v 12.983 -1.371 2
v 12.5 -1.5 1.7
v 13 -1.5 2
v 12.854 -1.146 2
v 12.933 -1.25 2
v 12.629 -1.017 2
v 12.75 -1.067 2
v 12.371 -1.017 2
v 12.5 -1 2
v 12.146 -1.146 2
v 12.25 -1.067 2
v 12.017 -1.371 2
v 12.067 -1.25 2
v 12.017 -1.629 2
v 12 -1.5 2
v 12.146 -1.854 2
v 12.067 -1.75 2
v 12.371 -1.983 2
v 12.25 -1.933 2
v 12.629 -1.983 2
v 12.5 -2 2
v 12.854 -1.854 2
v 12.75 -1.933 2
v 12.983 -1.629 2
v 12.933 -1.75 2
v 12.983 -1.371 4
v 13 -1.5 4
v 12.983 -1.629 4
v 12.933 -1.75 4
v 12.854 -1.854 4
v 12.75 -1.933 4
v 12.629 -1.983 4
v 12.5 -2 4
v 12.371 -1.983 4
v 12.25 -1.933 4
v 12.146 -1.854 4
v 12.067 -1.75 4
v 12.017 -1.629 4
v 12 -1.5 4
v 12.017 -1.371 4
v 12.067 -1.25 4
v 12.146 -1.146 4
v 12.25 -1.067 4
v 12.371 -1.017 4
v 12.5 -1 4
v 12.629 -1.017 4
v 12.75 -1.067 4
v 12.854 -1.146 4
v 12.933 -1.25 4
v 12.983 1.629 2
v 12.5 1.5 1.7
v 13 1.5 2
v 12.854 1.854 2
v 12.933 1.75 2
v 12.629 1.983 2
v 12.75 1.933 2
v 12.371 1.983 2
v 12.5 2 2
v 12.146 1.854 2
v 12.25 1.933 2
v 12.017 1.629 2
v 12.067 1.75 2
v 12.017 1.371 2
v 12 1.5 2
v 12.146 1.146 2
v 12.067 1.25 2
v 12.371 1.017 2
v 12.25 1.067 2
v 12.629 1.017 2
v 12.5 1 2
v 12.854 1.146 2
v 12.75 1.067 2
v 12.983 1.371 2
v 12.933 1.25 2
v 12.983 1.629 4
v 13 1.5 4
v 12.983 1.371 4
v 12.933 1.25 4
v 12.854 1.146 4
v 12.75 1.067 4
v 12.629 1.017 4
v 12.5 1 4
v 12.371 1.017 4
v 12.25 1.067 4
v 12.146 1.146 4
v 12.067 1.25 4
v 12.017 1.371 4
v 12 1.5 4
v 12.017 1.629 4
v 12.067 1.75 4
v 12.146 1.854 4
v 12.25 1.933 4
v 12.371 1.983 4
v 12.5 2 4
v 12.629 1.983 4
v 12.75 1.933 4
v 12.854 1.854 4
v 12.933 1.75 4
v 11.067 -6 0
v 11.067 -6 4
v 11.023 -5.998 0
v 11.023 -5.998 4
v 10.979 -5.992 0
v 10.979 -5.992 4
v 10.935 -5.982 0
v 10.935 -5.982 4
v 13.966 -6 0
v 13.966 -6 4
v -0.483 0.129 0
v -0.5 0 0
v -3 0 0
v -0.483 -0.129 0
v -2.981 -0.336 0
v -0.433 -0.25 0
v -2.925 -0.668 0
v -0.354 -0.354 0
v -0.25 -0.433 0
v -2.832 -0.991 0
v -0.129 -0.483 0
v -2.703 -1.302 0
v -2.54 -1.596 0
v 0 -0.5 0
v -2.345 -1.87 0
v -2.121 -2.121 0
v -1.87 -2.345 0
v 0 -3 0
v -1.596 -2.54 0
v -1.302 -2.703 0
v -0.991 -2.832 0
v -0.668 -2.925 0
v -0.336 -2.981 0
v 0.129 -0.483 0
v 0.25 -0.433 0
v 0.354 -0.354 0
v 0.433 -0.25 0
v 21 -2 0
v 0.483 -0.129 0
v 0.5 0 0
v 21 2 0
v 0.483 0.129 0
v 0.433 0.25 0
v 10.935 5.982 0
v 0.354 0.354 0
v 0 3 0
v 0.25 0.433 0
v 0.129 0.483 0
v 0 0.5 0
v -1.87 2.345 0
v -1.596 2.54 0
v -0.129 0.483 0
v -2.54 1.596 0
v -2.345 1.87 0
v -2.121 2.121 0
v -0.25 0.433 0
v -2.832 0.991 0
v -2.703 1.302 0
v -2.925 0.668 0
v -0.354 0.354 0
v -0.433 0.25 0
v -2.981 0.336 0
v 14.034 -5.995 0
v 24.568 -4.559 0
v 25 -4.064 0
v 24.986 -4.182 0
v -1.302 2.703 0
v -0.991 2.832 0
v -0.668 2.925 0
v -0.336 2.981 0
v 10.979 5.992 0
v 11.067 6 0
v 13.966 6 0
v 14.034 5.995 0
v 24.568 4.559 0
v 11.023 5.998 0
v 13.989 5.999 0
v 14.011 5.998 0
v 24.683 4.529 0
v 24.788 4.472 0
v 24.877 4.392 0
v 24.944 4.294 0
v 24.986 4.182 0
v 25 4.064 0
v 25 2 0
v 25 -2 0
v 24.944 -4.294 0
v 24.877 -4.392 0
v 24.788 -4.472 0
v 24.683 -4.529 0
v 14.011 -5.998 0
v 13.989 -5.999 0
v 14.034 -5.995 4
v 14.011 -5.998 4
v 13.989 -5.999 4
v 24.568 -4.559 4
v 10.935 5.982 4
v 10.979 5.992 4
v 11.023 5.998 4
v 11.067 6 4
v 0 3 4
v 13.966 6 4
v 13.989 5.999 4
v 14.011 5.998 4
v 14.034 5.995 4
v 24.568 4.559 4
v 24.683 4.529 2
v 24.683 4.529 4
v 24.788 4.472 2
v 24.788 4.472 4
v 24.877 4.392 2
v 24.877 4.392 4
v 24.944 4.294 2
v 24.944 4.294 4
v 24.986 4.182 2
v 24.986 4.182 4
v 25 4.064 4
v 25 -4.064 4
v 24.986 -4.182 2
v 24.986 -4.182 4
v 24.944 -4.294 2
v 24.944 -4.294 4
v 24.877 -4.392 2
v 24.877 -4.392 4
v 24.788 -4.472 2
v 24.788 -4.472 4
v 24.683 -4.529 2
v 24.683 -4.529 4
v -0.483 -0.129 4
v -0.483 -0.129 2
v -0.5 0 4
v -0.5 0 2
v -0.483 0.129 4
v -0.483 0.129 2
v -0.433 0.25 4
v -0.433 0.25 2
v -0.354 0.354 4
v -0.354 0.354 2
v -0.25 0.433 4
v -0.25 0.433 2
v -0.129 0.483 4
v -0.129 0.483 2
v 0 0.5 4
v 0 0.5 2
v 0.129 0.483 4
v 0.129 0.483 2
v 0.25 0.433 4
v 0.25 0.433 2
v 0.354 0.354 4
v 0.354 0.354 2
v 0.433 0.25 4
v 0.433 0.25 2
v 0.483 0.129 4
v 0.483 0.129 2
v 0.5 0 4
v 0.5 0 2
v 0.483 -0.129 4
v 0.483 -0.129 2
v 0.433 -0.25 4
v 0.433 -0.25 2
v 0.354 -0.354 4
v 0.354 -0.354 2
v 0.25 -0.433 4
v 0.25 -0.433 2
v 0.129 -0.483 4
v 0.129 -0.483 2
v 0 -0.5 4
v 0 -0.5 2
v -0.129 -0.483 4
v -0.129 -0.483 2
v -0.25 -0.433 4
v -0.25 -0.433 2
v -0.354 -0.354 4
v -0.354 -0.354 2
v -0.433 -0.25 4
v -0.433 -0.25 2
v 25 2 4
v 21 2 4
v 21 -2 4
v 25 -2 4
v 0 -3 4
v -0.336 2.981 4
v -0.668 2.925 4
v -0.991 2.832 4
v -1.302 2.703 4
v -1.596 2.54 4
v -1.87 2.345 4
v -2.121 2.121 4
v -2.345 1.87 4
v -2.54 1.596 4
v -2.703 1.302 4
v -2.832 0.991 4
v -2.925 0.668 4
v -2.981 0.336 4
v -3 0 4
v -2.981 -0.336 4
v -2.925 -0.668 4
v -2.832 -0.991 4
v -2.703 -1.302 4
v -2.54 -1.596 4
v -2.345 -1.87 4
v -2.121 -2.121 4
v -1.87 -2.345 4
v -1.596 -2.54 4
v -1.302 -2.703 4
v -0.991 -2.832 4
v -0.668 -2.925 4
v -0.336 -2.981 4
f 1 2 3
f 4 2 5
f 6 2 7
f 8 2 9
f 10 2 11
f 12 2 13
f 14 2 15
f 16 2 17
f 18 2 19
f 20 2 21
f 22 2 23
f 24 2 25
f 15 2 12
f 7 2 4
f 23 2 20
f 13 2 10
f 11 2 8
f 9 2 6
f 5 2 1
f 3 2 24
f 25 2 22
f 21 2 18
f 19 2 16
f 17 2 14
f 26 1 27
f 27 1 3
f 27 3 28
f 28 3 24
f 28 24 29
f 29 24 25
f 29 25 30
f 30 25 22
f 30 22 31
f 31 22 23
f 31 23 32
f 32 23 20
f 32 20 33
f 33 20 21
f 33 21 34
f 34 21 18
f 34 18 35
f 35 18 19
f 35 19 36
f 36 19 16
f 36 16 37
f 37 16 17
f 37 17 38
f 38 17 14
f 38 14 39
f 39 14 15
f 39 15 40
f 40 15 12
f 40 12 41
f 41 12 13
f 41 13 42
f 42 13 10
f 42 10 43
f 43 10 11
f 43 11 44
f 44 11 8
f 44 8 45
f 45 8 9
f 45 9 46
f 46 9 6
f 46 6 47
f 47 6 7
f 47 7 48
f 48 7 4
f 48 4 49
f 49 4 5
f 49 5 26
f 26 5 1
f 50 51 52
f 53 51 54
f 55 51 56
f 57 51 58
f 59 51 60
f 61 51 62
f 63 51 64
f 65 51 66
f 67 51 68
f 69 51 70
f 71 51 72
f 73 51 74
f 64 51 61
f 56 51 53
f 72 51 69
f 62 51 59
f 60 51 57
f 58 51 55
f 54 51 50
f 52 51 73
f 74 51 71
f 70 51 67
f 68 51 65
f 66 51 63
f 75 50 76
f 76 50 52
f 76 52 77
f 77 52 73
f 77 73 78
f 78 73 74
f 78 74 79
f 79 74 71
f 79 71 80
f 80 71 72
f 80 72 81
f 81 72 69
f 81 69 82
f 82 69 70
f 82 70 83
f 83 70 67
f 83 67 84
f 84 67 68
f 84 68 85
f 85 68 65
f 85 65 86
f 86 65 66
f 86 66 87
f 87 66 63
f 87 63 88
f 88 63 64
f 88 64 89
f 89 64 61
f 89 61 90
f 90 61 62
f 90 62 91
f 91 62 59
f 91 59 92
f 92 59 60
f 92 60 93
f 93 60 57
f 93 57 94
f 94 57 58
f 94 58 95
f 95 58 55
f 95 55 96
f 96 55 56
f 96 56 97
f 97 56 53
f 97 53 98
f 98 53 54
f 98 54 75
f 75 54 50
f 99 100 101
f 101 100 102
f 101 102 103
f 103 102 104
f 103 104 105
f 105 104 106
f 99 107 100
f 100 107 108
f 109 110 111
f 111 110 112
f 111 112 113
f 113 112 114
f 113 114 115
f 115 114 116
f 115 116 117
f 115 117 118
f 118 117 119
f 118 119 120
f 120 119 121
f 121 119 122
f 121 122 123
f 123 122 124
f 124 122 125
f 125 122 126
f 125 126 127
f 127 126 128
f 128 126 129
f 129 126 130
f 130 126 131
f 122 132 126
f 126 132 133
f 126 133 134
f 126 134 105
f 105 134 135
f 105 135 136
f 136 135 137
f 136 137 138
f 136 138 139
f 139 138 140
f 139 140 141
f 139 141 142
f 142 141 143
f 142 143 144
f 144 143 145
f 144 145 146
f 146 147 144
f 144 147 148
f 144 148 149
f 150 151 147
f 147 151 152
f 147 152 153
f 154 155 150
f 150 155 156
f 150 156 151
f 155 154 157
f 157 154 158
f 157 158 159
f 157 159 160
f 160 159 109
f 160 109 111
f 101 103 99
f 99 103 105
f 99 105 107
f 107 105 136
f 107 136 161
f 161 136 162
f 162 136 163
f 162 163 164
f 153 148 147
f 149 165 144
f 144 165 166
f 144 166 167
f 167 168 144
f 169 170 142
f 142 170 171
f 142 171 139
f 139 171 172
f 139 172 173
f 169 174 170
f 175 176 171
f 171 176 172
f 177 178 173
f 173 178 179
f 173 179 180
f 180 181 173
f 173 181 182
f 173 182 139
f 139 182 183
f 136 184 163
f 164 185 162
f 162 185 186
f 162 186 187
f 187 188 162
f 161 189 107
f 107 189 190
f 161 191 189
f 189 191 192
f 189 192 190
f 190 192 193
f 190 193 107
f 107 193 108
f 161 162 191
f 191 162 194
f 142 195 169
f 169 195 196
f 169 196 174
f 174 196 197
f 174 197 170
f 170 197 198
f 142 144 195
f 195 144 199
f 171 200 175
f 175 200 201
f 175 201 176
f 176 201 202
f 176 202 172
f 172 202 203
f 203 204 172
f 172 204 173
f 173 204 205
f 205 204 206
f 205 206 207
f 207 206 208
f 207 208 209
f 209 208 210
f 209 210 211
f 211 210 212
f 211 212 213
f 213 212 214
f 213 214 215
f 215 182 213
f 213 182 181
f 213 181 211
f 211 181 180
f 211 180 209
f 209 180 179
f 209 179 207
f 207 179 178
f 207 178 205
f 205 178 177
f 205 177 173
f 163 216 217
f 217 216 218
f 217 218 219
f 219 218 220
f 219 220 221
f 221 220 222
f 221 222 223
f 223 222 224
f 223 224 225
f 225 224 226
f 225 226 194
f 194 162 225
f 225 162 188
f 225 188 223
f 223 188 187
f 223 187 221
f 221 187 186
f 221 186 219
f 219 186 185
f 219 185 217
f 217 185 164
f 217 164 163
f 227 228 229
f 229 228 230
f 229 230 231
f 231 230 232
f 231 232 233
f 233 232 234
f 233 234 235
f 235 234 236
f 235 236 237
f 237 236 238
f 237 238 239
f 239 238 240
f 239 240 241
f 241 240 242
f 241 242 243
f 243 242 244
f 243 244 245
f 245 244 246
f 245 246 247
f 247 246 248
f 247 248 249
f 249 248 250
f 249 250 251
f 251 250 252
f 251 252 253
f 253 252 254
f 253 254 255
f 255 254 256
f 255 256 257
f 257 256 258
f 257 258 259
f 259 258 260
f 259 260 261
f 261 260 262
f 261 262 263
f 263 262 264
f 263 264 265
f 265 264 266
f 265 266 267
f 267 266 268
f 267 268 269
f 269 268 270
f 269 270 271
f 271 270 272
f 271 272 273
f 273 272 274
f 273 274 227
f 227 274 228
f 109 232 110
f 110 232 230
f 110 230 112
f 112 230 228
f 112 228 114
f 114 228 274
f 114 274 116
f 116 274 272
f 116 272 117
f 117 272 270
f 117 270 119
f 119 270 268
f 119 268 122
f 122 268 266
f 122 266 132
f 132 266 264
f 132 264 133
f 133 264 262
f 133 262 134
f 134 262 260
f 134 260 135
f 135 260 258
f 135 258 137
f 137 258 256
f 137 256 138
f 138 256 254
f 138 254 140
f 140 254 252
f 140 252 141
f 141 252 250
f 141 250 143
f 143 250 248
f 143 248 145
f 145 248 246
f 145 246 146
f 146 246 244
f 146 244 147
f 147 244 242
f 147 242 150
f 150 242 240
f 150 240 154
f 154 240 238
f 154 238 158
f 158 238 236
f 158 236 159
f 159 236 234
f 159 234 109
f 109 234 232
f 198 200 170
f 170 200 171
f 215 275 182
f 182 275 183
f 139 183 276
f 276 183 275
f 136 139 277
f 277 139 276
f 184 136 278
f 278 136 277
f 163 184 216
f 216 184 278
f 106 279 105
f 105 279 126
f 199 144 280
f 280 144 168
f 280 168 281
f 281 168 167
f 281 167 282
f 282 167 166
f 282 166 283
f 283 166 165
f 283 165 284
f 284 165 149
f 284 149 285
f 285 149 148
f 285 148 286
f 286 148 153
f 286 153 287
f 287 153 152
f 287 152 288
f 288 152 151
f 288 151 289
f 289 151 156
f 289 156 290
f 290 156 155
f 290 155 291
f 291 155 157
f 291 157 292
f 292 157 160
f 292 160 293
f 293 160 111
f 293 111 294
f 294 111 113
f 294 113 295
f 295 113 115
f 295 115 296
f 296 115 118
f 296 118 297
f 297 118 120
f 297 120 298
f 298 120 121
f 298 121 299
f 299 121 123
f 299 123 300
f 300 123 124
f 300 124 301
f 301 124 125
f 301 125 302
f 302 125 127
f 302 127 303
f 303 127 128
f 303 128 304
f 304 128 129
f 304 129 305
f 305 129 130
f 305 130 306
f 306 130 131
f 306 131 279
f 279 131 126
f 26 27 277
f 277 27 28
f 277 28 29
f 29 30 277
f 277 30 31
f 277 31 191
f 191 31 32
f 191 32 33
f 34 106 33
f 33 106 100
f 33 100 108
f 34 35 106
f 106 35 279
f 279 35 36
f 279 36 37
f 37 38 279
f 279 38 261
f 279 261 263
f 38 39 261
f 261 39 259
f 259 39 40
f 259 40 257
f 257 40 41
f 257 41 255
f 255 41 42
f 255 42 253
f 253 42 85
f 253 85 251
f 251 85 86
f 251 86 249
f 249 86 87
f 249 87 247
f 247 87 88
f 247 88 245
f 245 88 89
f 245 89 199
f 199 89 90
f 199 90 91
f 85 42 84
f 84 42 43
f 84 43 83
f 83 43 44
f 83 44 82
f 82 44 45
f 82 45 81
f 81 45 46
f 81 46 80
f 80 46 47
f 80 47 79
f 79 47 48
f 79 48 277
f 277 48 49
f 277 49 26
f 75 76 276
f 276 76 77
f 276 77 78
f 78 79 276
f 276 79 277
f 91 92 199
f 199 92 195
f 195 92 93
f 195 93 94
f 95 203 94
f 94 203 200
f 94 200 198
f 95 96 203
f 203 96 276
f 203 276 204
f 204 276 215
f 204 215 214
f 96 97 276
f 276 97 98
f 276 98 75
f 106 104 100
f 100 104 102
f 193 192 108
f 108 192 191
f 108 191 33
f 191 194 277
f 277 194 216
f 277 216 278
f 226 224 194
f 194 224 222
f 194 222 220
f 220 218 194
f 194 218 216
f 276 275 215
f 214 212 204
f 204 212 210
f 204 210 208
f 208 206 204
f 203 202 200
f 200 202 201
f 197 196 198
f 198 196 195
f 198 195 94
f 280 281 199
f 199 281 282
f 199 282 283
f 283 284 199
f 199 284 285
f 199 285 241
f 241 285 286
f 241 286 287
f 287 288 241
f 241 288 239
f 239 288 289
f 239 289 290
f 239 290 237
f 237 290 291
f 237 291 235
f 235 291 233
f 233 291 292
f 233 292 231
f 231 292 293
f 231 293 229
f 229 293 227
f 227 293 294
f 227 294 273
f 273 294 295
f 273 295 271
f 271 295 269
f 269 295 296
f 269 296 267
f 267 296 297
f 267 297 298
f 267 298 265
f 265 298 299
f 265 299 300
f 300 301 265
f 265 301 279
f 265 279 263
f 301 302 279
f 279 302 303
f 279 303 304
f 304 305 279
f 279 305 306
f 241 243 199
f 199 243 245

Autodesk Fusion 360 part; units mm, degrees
sketch "Sketch1" plane through (0, 0, 0) normal (0, 0, 1) x (1, 0, 0)
  line L0 (25, -3) -> (25, 3)
  circle A0 centre (0, 0) radius 0.5
  line L1 (25, 0) -> (21, 0)
  line L2 (21, 0) -> (21, -2)
  line L3 (21, -2) -> (25, -2)
  line L4 (25, -2) -> (25, 0)
  line L5 (25, 0) -> (11, 0)
  line L6 (25, 4.5) -> (25, 0)
  line L7 (11, 0) -> (25, 0)
  line L8 (25, 0) -> (25, -4.5)
  line L9 (25, 0) -> (21, 0)
  line L10 (21, 0) -> (21, 2)
  line L11 (21, 2) -> (25, 2)
  line L12 (25, 2) -> (25, 0)
  line L13 (25, -2) -> (21, -2)
  line L14 (25, -4.5) -> (25, -2)
  line L15 (25, 2) -> (21, 2)
  line L16 (25, 4.5) -> (25, 2)
  line L17 (0, 3) -> (11, 6)
  line L18 (0, -3) -> (11, -6)
  line L19 (11, -6) -> (14, -6)
  line L20 (14, -6) -> (25, -4.5)
  line L21 (11, 6) -> (14, 6)
  line L22 (14, 6) -> (25, 4.5)
  arc A1 (0, 3) -> (0, -3) centre (0, 0) ccw
  dimension "d1" = 6
  dimension "d3" = 1
extrude "Extrude1" add sketch "Sketch1" along normal blind 4 contours L0 L2 L3 L6 L8 L10 L11 L13 L14 L15 L16 L17 L18 L19 L20 L21 L22 A1
fillet "Fillet1" radius 0.5 1 edges at (25, -4.5, 2)
fillet "Fillet2" radius 0.5 1 edges at (25, 4.5, 2)
fillet "Fillet3" radius 0.5 1 edges at (14, 6, 2)
fillet "Fillet4" radius 0.5 1 edges at (11, 6, 2)
fillet "Fillet5" radius 0.5 1 edges at (14, -6, 2)
fillet "Fillet6" radius 0.5 1 edges at (11, -6, 2)
sketch "Sketch2" plane through (0, 0, 0) normal (0, 0, 1) x (1, 0, 0)
sketch "Sketch3" plane through (0, 0, 0) normal (0, 1, 0) x (1, 0, 0)
sketch "Sketch6" plane through (0, 0, 0) normal (0, 0, -1) x (1, 0, 0)
  circle A0 centre (0, 0) radius 0.5
  arc A1 (11.067, 6) -> (10.9354, 5.9824) centre (11.067, 5.5) ccw
  line L0 (10.9354, 5.9824) -> (0, 3)
  arc A2 (0, 3) -> (0, -3) centre (0, 0) ccw
  line L1 (0, -3) -> (10.9354, -5.9824)
  arc A3 (10.9354, -5.9824) -> (11.067, -6) centre (11.067, -5.5) ccw
  line L2 (11.067, -6) -> (13.9661, -6)
  arc A4 (13.9661, -6) -> (14.0336, -5.9954) centre (13.9661, -5.5) ccw
  line L3 (14.0336, -5.9954) -> (24.5676, -4.559)
  arc A5 (24.5676, -4.559) -> (25, -4.0636) centre (24.5, -4.0636) ccw
  line L4 (25, -4.0636) -> (25, -2)
  line L5 (25, -2) -> (21, -2)
  line L6 (21, -2) -> (21, 2)
  line L7 (21, 2) -> (25, 2)
  line L8 (25, 2) -> (25, 4.0636)
  arc A6 (25, 4.0636) -> (24.5676, 4.559) centre (24.5, 4.0636) ccw
  line L9 (24.5676, 4.559) -> (14.0336, 5.9954)
  arc A7 (14.0336, 5.9954) -> (13.9661, 6) centre (13.9661, 5.5) ccw
  line L10 (13.9661, 6) -> (11.067, 6)
  line L11 (11.067, 6) -> (11.067, -6)
  dimension "d22" = 21
sketch "Sketch7" plane through (0, 0, 4) normal (0, 0, 1) x (-1, 0, 0)
  arc A0 (-10.9354, 5.9824) -> (-11.067, 6) centre (-11.067, 5.5) ccw
  line L0 (-11.067, 6) -> (-13.9661, 6)
  arc A1 (-13.9661, 6) -> (-14.0336, 5.9954) centre (-13.9661, 5.5) ccw
  line L1 (-14.0336, 5.9954) -> (-24.5676, 4.559)
  arc A2 (-24.5676, 4.559) -> (-25, 4.0636) centre (-24.5, 4.0636) ccw
  line L2 (-25, 4.0636) -> (-25, 2)
  line L3 (-25, 2) -> (-21, 2)
  line L4 (-21, 2) -> (-21, -2)
  line L5 (-21, -2) -> (-25, -2)
  line L6 (-25, -2) -> (-25, -4.0636)
  arc A3 (-25, -4.0636) -> (-24.5676, -4.559) centre (-24.5, -4.0636) ccw
  line L7 (-24.5676, -4.559) -> (-14.0336, -5.9954)
  arc A4 (-14.0336, -5.9954) -> (-13.9661, -6) centre (-13.9661, -5.5) ccw
  line L8 (-13.9661, -6) -> (-11.067, -6)
  arc A5 (-11.067, -6) -> (-10.9354, -5.9824) centre (-11.067, -5.5) ccw
  line L9 (-10.9354, -5.9824) -> (0, -3)
  arc A6 (0, -3) -> (0, 3) centre (0, 0) ccw
  line L10 (0, 3) -> (-10.9354, 5.9824)
  circle A7 centre (0, 0) radius 0.5
  line L11 (0, 0) -> (-12.5, 0)
  line L12 (-12.5, 0) -> (-12.5, -1.5)
  line L13 (-12.5, 0) -> (-12.5, 1.5)
  circle A8 centre (-12.5, -1.5) radius 0.5
  circle A9 centre (-12.5, 1.5) radius 0.5
  dimension "d23" = 12.5
  dimension "d24" = 1
  dimension "d25" = 1
hole "Hole1" at (12.5, 1.5, 4) direction (0, 0, -1) diameter 1 depth 2 tip angle 118
hole "Hole2" at (12.5, -1.5, 4) direction (0, 0, -1) diameter 1 depth 2 tip angle 118
ref_plane "WorkPlane1" through (0, 0, 12) normal (0, 0, 1) x (1, 0, 0)
equation "d25 = mm"
